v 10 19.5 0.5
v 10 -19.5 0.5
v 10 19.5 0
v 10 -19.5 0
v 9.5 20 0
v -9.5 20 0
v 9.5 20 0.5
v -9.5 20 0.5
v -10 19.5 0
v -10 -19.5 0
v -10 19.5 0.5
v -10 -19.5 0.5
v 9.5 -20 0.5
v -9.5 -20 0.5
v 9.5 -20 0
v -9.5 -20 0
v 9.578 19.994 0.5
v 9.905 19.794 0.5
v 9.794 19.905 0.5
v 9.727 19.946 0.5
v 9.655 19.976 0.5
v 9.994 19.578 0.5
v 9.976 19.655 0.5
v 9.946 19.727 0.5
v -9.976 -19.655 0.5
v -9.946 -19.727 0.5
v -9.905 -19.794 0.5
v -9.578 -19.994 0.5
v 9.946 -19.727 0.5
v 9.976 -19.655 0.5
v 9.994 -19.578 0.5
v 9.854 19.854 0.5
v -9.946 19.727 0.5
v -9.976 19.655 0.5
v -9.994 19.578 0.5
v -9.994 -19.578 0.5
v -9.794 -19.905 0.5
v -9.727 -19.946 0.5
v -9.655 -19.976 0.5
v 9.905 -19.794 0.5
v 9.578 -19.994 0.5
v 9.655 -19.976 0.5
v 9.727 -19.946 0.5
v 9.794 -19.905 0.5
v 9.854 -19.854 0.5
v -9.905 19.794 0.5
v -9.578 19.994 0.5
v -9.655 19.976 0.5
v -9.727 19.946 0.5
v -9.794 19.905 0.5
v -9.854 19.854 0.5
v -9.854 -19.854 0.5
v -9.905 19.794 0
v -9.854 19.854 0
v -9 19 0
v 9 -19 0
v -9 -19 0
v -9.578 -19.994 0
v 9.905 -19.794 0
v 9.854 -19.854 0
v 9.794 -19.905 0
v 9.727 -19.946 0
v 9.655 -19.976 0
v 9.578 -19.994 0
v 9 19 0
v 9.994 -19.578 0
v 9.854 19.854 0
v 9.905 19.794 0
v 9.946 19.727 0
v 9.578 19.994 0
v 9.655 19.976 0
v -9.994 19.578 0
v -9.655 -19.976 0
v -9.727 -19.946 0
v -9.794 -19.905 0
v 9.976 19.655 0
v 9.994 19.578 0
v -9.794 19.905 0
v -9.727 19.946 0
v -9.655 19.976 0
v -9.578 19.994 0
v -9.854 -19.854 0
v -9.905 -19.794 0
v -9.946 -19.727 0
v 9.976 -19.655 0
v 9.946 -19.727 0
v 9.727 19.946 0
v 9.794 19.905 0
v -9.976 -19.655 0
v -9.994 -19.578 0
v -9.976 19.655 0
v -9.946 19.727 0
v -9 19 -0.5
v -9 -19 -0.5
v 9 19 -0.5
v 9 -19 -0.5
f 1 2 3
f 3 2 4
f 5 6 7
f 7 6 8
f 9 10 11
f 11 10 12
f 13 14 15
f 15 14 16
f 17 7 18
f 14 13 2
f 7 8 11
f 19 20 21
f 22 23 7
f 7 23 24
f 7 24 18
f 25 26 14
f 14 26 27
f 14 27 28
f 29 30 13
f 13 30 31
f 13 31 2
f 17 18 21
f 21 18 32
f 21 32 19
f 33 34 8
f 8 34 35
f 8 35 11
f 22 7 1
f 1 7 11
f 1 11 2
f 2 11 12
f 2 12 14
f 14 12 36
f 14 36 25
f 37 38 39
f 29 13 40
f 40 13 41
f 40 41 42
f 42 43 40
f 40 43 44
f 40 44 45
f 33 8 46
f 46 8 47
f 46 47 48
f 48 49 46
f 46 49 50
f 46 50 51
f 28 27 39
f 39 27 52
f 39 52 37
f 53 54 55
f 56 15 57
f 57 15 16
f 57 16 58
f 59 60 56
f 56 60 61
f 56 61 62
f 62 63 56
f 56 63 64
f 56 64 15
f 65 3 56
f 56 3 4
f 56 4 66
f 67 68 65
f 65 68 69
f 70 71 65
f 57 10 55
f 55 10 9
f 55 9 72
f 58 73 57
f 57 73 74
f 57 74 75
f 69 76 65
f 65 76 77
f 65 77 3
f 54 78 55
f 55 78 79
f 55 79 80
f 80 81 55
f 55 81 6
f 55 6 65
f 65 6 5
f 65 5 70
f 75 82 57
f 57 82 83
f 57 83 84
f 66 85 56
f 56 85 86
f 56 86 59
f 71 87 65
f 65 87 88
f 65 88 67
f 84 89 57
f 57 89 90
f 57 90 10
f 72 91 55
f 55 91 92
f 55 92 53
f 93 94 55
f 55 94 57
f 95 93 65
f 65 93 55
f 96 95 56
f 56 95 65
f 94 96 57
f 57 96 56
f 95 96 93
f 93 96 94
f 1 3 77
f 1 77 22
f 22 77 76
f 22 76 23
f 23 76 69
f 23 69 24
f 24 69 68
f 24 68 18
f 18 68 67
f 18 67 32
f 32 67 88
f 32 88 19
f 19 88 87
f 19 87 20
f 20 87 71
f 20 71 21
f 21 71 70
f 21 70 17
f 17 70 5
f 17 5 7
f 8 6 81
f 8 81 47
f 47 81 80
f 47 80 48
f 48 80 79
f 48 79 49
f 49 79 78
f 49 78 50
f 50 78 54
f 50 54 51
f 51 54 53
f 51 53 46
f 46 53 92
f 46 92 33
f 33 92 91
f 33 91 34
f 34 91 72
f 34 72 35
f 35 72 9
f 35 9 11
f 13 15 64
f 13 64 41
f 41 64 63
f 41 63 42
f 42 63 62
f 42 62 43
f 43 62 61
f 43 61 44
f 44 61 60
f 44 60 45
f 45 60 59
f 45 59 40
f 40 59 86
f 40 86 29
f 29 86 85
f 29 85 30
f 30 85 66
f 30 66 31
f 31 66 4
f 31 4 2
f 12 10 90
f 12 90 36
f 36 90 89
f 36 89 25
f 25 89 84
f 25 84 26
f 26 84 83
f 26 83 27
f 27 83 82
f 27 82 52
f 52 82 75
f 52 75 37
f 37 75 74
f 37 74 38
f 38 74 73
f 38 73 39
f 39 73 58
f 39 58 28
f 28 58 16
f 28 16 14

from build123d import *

# Parameters (mm, degrees)
SKETCH2_W           = 20
SKETCH2_H           = 40
BOSS_EXTRUDE1_DEPTH = 0.5
SKETCH4_W           = 18
SKETCH4_H           = 38
BOSS_EXTRUDE2_DEPTH = 0.5
FILLET1_R           = 0.5


with BuildPart() as part:
    # Sketch2 → Boss-Extrude1 (new body)
    with BuildSketch(Plane.XY):
        Rectangle(SKETCH2_W, SKETCH2_H)
    extrude(amount=BOSS_EXTRUDE1_DEPTH)

    # Sketch4 → Boss-Extrude2 (add)
    with BuildSketch(Plane(origin=(0, 0, 0), x_dir=(-1, 0, 0), z_dir=(0, 0, -1))):
        Rectangle(SKETCH4_W, SKETCH4_H)
    extrude(amount=BOSS_EXTRUDE2_DEPTH)

    # Fillet1
    fillet1_edges = [part.edges().sort_by_distance(p)[0] for p in [
        (10, -20, 0.25),
        (-10, -20, 0.25),
        (-10, 20, 0.25),
        (10, 20, 0.25),
    ]]
    fillet(fillet1_edges, radius=FILLET1_R)


solid = part.part
